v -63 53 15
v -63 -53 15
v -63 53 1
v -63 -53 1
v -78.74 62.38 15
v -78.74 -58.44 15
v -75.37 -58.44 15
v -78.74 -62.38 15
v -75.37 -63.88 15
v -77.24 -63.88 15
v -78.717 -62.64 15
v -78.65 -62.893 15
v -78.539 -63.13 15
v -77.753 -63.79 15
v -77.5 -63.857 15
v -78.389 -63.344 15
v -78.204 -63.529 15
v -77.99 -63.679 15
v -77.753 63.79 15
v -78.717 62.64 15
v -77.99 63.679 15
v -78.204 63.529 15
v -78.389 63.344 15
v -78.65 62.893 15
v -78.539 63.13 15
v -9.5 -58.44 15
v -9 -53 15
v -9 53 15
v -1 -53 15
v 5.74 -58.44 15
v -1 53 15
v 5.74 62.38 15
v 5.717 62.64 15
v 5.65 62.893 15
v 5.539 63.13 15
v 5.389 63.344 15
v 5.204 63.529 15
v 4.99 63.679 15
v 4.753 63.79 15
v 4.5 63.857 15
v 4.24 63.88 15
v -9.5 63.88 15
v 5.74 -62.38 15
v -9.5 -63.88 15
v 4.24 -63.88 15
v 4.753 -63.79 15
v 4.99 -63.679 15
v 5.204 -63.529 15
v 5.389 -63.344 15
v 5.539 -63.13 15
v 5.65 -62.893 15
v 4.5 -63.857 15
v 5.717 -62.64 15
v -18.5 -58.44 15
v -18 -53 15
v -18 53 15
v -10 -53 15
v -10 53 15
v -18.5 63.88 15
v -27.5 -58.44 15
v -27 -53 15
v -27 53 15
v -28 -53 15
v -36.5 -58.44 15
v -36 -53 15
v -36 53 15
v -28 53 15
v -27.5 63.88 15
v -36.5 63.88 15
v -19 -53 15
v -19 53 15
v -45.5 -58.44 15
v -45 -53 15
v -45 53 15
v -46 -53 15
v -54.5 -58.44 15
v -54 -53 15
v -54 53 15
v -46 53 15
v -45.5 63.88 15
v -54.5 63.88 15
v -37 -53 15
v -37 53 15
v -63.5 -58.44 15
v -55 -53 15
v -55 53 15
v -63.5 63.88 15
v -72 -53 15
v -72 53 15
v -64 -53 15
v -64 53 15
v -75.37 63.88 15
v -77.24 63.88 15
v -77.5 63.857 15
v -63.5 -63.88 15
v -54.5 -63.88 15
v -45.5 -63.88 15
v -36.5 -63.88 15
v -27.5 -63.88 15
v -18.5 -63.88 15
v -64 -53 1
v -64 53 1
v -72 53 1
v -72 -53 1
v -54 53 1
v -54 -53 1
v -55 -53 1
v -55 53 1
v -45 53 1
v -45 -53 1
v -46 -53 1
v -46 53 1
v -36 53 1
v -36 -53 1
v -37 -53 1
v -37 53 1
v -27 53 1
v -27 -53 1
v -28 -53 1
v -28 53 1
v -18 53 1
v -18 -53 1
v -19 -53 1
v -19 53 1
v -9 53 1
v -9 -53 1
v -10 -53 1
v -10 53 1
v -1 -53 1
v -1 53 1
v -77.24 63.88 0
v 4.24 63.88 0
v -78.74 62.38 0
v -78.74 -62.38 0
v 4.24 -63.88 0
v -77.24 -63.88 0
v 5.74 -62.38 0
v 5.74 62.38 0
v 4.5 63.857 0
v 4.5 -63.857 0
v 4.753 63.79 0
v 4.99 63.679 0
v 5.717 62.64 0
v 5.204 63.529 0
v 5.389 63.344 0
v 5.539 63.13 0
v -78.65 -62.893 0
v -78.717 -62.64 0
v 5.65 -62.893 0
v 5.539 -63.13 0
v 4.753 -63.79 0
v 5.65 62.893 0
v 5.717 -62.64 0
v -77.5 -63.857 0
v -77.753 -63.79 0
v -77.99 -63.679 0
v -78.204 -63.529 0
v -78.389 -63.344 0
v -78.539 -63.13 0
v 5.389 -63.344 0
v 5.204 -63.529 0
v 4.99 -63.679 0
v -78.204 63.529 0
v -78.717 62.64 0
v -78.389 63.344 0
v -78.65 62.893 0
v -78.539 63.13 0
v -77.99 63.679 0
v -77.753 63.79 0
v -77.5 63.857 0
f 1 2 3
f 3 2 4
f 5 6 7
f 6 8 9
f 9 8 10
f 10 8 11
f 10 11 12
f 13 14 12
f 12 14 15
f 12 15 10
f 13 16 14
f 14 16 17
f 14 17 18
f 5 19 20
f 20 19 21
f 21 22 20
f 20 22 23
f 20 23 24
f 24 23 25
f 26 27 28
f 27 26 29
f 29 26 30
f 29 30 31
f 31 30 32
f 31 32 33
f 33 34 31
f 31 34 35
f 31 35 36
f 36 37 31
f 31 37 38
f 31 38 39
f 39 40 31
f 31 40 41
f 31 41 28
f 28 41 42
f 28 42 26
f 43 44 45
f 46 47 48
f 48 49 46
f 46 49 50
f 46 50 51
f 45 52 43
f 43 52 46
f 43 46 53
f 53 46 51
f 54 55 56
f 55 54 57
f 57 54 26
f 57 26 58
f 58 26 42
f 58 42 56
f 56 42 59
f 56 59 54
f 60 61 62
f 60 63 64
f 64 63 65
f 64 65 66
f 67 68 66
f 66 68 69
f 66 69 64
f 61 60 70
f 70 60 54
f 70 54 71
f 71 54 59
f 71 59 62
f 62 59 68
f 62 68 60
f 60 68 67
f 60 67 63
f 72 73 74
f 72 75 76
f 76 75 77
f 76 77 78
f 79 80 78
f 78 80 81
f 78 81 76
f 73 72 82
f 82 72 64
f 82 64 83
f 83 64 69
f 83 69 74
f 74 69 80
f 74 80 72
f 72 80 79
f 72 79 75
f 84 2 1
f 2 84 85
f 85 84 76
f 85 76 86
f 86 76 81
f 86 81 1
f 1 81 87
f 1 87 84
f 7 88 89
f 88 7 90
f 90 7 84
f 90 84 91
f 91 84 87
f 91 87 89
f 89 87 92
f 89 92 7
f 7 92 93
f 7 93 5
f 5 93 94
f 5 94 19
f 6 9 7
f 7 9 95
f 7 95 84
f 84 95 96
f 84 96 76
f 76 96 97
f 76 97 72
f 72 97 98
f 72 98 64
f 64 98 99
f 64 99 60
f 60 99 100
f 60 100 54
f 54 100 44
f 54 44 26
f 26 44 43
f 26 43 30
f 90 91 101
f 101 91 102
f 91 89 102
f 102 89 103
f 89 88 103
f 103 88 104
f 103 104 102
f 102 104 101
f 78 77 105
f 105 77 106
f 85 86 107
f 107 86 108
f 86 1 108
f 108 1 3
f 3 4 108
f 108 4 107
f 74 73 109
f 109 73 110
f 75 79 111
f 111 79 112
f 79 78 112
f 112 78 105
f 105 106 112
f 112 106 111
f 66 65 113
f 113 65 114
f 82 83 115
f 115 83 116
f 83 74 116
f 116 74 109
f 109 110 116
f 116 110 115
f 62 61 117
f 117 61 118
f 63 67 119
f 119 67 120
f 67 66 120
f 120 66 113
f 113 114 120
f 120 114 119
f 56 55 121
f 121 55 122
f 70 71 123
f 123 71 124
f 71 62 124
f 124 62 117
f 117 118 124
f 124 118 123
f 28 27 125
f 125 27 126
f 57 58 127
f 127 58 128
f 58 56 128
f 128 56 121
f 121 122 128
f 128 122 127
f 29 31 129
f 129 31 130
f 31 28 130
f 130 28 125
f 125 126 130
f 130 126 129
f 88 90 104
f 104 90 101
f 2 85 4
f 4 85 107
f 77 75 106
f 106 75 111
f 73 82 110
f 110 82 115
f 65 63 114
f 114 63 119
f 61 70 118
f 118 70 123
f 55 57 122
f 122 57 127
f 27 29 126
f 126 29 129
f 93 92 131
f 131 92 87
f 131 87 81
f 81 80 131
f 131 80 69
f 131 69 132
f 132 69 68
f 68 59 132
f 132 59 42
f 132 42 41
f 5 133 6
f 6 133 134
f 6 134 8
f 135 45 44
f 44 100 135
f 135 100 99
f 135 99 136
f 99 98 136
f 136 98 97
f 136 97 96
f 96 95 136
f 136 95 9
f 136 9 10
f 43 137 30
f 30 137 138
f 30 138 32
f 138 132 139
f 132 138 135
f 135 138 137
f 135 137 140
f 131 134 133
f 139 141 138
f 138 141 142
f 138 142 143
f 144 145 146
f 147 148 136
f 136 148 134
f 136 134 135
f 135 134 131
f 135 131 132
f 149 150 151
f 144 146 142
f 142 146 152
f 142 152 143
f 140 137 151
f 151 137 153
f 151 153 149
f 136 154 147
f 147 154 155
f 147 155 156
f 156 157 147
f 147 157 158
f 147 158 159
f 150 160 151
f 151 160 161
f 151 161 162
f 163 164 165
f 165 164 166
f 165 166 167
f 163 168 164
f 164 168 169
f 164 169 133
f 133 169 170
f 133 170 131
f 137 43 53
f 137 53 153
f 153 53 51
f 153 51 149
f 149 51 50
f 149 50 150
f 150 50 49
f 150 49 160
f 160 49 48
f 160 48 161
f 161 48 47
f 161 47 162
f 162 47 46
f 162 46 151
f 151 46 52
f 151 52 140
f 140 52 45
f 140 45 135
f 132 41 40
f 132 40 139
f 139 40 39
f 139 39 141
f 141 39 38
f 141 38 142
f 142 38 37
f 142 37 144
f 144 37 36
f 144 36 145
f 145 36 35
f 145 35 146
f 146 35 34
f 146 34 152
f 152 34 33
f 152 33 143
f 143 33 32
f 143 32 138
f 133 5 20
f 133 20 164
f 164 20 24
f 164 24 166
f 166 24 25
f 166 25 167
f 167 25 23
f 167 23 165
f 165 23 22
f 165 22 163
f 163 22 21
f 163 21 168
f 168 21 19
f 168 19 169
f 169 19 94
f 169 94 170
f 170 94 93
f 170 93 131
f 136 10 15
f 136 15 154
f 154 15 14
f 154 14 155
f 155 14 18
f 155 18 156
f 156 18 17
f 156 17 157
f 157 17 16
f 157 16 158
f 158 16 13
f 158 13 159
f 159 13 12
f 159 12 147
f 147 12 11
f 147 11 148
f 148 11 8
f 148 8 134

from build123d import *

# Parameters (mm, degrees)
SKIZZE1_W                       = 10
SKIZZE1_H                       = 54
AUFSATZ_LINEAR_AUSTRAGEN1_DEPTH = 15
SCHALE1_T                       = -1
LINEARES_MUSTER1_COUNT          = 8
LINEARES_MUSTER1_PITCH          = 9
SKIZZE2_W                       = 84.48
SKIZZE2_H                       = 127.76
SKIZZE2_W_2                     = 73
SKIZZE2_H_2                     = 108
AUFSATZ_LINEAR_AUSTRAGEN2_DEPTH = 15
VERRUNDUNG1_R                   = 1.5


with BuildPart() as part:
    # Skizze1 → Aufsatz-Linear austragen1 (new body)
    with BuildSketch(Plane.XY):
        with Locations((-5, 27)):
            Rectangle(SKIZZE1_W, SKIZZE1_H)
    extrude(amount=AUFSATZ_LINEAR_AUSTRAGEN1_DEPTH)

    # Schale1
    schale1_openings = [part.faces().sort_by_distance(p)[0] for p in [
        (-5, 27, 15),
        (-5, 0, 7.5),
    ]]
    offset(amount=SCHALE1_T, openings=schale1_openings, kind=Kind.INTERSECTION)


with BuildPart() as lineares_muster1_1:
    # Lineares Muster1: pattern copy
    add(part.part.moved(Location(Vector(-1, 0, 0) * (1 * LINEARES_MUSTER1_PITCH))))


with BuildPart() as lineares_muster1_2:
    # Lineares Muster1: pattern copy
    add(part.part.moved(Location(Vector(-1, 0, 0) * (2 * LINEARES_MUSTER1_PITCH))))


with BuildPart() as lineares_muster1_3:
    # Lineares Muster1: pattern copy
    add(part.part.moved(Location(Vector(-1, 0, 0) * (3 * LINEARES_MUSTER1_PITCH))))


with BuildPart() as lineares_muster1_4:
    # Lineares Muster1: pattern copy
    add(part.part.moved(Location(Vector(-1, 0, 0) * (4 * LINEARES_MUSTER1_PITCH))))


with BuildPart() as lineares_muster1_5:
    # Lineares Muster1: pattern copy
    add(part.part.moved(Location(Vector(-1, 0, 0) * (5 * LINEARES_MUSTER1_PITCH))))


with BuildPart() as lineares_muster1_6:
    # Lineares Muster1: pattern copy
    add(part.part.moved(Location(Vector(-1, 0, 0) * (6 * LINEARES_MUSTER1_PITCH))))


with BuildPart() as lineares_muster1_7:
    # Lineares Muster1: pattern copy
    add(part.part.moved(Location(Vector(-1, 0, 0) * (7 * LINEARES_MUSTER1_PITCH))))


with BuildPart() as part_1:
    add(part.part)

    # Kombinieren1: read off the stored shape, not the designer's step
    # Kombinieren1: union Lineares Muster1_1, Lineares Muster1_2, Lineares Muster1_3, Lineares Muster1_4, Lineares Muster1_5, Lineares Muster1_6, Lineares Muster1_7
    add(lineares_muster1_1.part)
    add(lineares_muster1_2.part)
    add(lineares_muster1_3.part)
    add(lineares_muster1_4.part)
    add(lineares_muster1_5.part)
    add(lineares_muster1_6.part)
    add(lineares_muster1_7.part)

    # Spiegeln1: part across plane


with BuildPart() as part_2:
    add(part_1.part)
    add(part_1.part.mirror(Plane(origin=(-63, 0, 15), x_dir=(0, 0, 1), z_dir=(0, 1, 0))))

    # Skizze2 → Aufsatz-Linear austragen2 (add)
    with BuildSketch(Plane.XY.offset(15)):
        with Locations((-36.5, 0)):
            Rectangle(SKIZZE2_W, SKIZZE2_H)
        with Locations((-36.5, 0)):
            Rectangle(SKIZZE2_W_2, SKIZZE2_H_2, mode=Mode.SUBTRACT)
    extrude(amount=-AUFSATZ_LINEAR_AUSTRAGEN2_DEPTH)

    # Verrundung1
    verrundung1_edges = [part_2.edges().sort_by_distance(p)[0] for p in [
        (-78.74, 63.88, 7.5),
        (-78.74, -63.88, 7.5),
        (5.74, -63.88, 7.5),
        (5.74, 63.88, 7.5),
    ]]
    fillet(verrundung1_edges, radius=VERRUNDUNG1_R)


solid = part_2.part
